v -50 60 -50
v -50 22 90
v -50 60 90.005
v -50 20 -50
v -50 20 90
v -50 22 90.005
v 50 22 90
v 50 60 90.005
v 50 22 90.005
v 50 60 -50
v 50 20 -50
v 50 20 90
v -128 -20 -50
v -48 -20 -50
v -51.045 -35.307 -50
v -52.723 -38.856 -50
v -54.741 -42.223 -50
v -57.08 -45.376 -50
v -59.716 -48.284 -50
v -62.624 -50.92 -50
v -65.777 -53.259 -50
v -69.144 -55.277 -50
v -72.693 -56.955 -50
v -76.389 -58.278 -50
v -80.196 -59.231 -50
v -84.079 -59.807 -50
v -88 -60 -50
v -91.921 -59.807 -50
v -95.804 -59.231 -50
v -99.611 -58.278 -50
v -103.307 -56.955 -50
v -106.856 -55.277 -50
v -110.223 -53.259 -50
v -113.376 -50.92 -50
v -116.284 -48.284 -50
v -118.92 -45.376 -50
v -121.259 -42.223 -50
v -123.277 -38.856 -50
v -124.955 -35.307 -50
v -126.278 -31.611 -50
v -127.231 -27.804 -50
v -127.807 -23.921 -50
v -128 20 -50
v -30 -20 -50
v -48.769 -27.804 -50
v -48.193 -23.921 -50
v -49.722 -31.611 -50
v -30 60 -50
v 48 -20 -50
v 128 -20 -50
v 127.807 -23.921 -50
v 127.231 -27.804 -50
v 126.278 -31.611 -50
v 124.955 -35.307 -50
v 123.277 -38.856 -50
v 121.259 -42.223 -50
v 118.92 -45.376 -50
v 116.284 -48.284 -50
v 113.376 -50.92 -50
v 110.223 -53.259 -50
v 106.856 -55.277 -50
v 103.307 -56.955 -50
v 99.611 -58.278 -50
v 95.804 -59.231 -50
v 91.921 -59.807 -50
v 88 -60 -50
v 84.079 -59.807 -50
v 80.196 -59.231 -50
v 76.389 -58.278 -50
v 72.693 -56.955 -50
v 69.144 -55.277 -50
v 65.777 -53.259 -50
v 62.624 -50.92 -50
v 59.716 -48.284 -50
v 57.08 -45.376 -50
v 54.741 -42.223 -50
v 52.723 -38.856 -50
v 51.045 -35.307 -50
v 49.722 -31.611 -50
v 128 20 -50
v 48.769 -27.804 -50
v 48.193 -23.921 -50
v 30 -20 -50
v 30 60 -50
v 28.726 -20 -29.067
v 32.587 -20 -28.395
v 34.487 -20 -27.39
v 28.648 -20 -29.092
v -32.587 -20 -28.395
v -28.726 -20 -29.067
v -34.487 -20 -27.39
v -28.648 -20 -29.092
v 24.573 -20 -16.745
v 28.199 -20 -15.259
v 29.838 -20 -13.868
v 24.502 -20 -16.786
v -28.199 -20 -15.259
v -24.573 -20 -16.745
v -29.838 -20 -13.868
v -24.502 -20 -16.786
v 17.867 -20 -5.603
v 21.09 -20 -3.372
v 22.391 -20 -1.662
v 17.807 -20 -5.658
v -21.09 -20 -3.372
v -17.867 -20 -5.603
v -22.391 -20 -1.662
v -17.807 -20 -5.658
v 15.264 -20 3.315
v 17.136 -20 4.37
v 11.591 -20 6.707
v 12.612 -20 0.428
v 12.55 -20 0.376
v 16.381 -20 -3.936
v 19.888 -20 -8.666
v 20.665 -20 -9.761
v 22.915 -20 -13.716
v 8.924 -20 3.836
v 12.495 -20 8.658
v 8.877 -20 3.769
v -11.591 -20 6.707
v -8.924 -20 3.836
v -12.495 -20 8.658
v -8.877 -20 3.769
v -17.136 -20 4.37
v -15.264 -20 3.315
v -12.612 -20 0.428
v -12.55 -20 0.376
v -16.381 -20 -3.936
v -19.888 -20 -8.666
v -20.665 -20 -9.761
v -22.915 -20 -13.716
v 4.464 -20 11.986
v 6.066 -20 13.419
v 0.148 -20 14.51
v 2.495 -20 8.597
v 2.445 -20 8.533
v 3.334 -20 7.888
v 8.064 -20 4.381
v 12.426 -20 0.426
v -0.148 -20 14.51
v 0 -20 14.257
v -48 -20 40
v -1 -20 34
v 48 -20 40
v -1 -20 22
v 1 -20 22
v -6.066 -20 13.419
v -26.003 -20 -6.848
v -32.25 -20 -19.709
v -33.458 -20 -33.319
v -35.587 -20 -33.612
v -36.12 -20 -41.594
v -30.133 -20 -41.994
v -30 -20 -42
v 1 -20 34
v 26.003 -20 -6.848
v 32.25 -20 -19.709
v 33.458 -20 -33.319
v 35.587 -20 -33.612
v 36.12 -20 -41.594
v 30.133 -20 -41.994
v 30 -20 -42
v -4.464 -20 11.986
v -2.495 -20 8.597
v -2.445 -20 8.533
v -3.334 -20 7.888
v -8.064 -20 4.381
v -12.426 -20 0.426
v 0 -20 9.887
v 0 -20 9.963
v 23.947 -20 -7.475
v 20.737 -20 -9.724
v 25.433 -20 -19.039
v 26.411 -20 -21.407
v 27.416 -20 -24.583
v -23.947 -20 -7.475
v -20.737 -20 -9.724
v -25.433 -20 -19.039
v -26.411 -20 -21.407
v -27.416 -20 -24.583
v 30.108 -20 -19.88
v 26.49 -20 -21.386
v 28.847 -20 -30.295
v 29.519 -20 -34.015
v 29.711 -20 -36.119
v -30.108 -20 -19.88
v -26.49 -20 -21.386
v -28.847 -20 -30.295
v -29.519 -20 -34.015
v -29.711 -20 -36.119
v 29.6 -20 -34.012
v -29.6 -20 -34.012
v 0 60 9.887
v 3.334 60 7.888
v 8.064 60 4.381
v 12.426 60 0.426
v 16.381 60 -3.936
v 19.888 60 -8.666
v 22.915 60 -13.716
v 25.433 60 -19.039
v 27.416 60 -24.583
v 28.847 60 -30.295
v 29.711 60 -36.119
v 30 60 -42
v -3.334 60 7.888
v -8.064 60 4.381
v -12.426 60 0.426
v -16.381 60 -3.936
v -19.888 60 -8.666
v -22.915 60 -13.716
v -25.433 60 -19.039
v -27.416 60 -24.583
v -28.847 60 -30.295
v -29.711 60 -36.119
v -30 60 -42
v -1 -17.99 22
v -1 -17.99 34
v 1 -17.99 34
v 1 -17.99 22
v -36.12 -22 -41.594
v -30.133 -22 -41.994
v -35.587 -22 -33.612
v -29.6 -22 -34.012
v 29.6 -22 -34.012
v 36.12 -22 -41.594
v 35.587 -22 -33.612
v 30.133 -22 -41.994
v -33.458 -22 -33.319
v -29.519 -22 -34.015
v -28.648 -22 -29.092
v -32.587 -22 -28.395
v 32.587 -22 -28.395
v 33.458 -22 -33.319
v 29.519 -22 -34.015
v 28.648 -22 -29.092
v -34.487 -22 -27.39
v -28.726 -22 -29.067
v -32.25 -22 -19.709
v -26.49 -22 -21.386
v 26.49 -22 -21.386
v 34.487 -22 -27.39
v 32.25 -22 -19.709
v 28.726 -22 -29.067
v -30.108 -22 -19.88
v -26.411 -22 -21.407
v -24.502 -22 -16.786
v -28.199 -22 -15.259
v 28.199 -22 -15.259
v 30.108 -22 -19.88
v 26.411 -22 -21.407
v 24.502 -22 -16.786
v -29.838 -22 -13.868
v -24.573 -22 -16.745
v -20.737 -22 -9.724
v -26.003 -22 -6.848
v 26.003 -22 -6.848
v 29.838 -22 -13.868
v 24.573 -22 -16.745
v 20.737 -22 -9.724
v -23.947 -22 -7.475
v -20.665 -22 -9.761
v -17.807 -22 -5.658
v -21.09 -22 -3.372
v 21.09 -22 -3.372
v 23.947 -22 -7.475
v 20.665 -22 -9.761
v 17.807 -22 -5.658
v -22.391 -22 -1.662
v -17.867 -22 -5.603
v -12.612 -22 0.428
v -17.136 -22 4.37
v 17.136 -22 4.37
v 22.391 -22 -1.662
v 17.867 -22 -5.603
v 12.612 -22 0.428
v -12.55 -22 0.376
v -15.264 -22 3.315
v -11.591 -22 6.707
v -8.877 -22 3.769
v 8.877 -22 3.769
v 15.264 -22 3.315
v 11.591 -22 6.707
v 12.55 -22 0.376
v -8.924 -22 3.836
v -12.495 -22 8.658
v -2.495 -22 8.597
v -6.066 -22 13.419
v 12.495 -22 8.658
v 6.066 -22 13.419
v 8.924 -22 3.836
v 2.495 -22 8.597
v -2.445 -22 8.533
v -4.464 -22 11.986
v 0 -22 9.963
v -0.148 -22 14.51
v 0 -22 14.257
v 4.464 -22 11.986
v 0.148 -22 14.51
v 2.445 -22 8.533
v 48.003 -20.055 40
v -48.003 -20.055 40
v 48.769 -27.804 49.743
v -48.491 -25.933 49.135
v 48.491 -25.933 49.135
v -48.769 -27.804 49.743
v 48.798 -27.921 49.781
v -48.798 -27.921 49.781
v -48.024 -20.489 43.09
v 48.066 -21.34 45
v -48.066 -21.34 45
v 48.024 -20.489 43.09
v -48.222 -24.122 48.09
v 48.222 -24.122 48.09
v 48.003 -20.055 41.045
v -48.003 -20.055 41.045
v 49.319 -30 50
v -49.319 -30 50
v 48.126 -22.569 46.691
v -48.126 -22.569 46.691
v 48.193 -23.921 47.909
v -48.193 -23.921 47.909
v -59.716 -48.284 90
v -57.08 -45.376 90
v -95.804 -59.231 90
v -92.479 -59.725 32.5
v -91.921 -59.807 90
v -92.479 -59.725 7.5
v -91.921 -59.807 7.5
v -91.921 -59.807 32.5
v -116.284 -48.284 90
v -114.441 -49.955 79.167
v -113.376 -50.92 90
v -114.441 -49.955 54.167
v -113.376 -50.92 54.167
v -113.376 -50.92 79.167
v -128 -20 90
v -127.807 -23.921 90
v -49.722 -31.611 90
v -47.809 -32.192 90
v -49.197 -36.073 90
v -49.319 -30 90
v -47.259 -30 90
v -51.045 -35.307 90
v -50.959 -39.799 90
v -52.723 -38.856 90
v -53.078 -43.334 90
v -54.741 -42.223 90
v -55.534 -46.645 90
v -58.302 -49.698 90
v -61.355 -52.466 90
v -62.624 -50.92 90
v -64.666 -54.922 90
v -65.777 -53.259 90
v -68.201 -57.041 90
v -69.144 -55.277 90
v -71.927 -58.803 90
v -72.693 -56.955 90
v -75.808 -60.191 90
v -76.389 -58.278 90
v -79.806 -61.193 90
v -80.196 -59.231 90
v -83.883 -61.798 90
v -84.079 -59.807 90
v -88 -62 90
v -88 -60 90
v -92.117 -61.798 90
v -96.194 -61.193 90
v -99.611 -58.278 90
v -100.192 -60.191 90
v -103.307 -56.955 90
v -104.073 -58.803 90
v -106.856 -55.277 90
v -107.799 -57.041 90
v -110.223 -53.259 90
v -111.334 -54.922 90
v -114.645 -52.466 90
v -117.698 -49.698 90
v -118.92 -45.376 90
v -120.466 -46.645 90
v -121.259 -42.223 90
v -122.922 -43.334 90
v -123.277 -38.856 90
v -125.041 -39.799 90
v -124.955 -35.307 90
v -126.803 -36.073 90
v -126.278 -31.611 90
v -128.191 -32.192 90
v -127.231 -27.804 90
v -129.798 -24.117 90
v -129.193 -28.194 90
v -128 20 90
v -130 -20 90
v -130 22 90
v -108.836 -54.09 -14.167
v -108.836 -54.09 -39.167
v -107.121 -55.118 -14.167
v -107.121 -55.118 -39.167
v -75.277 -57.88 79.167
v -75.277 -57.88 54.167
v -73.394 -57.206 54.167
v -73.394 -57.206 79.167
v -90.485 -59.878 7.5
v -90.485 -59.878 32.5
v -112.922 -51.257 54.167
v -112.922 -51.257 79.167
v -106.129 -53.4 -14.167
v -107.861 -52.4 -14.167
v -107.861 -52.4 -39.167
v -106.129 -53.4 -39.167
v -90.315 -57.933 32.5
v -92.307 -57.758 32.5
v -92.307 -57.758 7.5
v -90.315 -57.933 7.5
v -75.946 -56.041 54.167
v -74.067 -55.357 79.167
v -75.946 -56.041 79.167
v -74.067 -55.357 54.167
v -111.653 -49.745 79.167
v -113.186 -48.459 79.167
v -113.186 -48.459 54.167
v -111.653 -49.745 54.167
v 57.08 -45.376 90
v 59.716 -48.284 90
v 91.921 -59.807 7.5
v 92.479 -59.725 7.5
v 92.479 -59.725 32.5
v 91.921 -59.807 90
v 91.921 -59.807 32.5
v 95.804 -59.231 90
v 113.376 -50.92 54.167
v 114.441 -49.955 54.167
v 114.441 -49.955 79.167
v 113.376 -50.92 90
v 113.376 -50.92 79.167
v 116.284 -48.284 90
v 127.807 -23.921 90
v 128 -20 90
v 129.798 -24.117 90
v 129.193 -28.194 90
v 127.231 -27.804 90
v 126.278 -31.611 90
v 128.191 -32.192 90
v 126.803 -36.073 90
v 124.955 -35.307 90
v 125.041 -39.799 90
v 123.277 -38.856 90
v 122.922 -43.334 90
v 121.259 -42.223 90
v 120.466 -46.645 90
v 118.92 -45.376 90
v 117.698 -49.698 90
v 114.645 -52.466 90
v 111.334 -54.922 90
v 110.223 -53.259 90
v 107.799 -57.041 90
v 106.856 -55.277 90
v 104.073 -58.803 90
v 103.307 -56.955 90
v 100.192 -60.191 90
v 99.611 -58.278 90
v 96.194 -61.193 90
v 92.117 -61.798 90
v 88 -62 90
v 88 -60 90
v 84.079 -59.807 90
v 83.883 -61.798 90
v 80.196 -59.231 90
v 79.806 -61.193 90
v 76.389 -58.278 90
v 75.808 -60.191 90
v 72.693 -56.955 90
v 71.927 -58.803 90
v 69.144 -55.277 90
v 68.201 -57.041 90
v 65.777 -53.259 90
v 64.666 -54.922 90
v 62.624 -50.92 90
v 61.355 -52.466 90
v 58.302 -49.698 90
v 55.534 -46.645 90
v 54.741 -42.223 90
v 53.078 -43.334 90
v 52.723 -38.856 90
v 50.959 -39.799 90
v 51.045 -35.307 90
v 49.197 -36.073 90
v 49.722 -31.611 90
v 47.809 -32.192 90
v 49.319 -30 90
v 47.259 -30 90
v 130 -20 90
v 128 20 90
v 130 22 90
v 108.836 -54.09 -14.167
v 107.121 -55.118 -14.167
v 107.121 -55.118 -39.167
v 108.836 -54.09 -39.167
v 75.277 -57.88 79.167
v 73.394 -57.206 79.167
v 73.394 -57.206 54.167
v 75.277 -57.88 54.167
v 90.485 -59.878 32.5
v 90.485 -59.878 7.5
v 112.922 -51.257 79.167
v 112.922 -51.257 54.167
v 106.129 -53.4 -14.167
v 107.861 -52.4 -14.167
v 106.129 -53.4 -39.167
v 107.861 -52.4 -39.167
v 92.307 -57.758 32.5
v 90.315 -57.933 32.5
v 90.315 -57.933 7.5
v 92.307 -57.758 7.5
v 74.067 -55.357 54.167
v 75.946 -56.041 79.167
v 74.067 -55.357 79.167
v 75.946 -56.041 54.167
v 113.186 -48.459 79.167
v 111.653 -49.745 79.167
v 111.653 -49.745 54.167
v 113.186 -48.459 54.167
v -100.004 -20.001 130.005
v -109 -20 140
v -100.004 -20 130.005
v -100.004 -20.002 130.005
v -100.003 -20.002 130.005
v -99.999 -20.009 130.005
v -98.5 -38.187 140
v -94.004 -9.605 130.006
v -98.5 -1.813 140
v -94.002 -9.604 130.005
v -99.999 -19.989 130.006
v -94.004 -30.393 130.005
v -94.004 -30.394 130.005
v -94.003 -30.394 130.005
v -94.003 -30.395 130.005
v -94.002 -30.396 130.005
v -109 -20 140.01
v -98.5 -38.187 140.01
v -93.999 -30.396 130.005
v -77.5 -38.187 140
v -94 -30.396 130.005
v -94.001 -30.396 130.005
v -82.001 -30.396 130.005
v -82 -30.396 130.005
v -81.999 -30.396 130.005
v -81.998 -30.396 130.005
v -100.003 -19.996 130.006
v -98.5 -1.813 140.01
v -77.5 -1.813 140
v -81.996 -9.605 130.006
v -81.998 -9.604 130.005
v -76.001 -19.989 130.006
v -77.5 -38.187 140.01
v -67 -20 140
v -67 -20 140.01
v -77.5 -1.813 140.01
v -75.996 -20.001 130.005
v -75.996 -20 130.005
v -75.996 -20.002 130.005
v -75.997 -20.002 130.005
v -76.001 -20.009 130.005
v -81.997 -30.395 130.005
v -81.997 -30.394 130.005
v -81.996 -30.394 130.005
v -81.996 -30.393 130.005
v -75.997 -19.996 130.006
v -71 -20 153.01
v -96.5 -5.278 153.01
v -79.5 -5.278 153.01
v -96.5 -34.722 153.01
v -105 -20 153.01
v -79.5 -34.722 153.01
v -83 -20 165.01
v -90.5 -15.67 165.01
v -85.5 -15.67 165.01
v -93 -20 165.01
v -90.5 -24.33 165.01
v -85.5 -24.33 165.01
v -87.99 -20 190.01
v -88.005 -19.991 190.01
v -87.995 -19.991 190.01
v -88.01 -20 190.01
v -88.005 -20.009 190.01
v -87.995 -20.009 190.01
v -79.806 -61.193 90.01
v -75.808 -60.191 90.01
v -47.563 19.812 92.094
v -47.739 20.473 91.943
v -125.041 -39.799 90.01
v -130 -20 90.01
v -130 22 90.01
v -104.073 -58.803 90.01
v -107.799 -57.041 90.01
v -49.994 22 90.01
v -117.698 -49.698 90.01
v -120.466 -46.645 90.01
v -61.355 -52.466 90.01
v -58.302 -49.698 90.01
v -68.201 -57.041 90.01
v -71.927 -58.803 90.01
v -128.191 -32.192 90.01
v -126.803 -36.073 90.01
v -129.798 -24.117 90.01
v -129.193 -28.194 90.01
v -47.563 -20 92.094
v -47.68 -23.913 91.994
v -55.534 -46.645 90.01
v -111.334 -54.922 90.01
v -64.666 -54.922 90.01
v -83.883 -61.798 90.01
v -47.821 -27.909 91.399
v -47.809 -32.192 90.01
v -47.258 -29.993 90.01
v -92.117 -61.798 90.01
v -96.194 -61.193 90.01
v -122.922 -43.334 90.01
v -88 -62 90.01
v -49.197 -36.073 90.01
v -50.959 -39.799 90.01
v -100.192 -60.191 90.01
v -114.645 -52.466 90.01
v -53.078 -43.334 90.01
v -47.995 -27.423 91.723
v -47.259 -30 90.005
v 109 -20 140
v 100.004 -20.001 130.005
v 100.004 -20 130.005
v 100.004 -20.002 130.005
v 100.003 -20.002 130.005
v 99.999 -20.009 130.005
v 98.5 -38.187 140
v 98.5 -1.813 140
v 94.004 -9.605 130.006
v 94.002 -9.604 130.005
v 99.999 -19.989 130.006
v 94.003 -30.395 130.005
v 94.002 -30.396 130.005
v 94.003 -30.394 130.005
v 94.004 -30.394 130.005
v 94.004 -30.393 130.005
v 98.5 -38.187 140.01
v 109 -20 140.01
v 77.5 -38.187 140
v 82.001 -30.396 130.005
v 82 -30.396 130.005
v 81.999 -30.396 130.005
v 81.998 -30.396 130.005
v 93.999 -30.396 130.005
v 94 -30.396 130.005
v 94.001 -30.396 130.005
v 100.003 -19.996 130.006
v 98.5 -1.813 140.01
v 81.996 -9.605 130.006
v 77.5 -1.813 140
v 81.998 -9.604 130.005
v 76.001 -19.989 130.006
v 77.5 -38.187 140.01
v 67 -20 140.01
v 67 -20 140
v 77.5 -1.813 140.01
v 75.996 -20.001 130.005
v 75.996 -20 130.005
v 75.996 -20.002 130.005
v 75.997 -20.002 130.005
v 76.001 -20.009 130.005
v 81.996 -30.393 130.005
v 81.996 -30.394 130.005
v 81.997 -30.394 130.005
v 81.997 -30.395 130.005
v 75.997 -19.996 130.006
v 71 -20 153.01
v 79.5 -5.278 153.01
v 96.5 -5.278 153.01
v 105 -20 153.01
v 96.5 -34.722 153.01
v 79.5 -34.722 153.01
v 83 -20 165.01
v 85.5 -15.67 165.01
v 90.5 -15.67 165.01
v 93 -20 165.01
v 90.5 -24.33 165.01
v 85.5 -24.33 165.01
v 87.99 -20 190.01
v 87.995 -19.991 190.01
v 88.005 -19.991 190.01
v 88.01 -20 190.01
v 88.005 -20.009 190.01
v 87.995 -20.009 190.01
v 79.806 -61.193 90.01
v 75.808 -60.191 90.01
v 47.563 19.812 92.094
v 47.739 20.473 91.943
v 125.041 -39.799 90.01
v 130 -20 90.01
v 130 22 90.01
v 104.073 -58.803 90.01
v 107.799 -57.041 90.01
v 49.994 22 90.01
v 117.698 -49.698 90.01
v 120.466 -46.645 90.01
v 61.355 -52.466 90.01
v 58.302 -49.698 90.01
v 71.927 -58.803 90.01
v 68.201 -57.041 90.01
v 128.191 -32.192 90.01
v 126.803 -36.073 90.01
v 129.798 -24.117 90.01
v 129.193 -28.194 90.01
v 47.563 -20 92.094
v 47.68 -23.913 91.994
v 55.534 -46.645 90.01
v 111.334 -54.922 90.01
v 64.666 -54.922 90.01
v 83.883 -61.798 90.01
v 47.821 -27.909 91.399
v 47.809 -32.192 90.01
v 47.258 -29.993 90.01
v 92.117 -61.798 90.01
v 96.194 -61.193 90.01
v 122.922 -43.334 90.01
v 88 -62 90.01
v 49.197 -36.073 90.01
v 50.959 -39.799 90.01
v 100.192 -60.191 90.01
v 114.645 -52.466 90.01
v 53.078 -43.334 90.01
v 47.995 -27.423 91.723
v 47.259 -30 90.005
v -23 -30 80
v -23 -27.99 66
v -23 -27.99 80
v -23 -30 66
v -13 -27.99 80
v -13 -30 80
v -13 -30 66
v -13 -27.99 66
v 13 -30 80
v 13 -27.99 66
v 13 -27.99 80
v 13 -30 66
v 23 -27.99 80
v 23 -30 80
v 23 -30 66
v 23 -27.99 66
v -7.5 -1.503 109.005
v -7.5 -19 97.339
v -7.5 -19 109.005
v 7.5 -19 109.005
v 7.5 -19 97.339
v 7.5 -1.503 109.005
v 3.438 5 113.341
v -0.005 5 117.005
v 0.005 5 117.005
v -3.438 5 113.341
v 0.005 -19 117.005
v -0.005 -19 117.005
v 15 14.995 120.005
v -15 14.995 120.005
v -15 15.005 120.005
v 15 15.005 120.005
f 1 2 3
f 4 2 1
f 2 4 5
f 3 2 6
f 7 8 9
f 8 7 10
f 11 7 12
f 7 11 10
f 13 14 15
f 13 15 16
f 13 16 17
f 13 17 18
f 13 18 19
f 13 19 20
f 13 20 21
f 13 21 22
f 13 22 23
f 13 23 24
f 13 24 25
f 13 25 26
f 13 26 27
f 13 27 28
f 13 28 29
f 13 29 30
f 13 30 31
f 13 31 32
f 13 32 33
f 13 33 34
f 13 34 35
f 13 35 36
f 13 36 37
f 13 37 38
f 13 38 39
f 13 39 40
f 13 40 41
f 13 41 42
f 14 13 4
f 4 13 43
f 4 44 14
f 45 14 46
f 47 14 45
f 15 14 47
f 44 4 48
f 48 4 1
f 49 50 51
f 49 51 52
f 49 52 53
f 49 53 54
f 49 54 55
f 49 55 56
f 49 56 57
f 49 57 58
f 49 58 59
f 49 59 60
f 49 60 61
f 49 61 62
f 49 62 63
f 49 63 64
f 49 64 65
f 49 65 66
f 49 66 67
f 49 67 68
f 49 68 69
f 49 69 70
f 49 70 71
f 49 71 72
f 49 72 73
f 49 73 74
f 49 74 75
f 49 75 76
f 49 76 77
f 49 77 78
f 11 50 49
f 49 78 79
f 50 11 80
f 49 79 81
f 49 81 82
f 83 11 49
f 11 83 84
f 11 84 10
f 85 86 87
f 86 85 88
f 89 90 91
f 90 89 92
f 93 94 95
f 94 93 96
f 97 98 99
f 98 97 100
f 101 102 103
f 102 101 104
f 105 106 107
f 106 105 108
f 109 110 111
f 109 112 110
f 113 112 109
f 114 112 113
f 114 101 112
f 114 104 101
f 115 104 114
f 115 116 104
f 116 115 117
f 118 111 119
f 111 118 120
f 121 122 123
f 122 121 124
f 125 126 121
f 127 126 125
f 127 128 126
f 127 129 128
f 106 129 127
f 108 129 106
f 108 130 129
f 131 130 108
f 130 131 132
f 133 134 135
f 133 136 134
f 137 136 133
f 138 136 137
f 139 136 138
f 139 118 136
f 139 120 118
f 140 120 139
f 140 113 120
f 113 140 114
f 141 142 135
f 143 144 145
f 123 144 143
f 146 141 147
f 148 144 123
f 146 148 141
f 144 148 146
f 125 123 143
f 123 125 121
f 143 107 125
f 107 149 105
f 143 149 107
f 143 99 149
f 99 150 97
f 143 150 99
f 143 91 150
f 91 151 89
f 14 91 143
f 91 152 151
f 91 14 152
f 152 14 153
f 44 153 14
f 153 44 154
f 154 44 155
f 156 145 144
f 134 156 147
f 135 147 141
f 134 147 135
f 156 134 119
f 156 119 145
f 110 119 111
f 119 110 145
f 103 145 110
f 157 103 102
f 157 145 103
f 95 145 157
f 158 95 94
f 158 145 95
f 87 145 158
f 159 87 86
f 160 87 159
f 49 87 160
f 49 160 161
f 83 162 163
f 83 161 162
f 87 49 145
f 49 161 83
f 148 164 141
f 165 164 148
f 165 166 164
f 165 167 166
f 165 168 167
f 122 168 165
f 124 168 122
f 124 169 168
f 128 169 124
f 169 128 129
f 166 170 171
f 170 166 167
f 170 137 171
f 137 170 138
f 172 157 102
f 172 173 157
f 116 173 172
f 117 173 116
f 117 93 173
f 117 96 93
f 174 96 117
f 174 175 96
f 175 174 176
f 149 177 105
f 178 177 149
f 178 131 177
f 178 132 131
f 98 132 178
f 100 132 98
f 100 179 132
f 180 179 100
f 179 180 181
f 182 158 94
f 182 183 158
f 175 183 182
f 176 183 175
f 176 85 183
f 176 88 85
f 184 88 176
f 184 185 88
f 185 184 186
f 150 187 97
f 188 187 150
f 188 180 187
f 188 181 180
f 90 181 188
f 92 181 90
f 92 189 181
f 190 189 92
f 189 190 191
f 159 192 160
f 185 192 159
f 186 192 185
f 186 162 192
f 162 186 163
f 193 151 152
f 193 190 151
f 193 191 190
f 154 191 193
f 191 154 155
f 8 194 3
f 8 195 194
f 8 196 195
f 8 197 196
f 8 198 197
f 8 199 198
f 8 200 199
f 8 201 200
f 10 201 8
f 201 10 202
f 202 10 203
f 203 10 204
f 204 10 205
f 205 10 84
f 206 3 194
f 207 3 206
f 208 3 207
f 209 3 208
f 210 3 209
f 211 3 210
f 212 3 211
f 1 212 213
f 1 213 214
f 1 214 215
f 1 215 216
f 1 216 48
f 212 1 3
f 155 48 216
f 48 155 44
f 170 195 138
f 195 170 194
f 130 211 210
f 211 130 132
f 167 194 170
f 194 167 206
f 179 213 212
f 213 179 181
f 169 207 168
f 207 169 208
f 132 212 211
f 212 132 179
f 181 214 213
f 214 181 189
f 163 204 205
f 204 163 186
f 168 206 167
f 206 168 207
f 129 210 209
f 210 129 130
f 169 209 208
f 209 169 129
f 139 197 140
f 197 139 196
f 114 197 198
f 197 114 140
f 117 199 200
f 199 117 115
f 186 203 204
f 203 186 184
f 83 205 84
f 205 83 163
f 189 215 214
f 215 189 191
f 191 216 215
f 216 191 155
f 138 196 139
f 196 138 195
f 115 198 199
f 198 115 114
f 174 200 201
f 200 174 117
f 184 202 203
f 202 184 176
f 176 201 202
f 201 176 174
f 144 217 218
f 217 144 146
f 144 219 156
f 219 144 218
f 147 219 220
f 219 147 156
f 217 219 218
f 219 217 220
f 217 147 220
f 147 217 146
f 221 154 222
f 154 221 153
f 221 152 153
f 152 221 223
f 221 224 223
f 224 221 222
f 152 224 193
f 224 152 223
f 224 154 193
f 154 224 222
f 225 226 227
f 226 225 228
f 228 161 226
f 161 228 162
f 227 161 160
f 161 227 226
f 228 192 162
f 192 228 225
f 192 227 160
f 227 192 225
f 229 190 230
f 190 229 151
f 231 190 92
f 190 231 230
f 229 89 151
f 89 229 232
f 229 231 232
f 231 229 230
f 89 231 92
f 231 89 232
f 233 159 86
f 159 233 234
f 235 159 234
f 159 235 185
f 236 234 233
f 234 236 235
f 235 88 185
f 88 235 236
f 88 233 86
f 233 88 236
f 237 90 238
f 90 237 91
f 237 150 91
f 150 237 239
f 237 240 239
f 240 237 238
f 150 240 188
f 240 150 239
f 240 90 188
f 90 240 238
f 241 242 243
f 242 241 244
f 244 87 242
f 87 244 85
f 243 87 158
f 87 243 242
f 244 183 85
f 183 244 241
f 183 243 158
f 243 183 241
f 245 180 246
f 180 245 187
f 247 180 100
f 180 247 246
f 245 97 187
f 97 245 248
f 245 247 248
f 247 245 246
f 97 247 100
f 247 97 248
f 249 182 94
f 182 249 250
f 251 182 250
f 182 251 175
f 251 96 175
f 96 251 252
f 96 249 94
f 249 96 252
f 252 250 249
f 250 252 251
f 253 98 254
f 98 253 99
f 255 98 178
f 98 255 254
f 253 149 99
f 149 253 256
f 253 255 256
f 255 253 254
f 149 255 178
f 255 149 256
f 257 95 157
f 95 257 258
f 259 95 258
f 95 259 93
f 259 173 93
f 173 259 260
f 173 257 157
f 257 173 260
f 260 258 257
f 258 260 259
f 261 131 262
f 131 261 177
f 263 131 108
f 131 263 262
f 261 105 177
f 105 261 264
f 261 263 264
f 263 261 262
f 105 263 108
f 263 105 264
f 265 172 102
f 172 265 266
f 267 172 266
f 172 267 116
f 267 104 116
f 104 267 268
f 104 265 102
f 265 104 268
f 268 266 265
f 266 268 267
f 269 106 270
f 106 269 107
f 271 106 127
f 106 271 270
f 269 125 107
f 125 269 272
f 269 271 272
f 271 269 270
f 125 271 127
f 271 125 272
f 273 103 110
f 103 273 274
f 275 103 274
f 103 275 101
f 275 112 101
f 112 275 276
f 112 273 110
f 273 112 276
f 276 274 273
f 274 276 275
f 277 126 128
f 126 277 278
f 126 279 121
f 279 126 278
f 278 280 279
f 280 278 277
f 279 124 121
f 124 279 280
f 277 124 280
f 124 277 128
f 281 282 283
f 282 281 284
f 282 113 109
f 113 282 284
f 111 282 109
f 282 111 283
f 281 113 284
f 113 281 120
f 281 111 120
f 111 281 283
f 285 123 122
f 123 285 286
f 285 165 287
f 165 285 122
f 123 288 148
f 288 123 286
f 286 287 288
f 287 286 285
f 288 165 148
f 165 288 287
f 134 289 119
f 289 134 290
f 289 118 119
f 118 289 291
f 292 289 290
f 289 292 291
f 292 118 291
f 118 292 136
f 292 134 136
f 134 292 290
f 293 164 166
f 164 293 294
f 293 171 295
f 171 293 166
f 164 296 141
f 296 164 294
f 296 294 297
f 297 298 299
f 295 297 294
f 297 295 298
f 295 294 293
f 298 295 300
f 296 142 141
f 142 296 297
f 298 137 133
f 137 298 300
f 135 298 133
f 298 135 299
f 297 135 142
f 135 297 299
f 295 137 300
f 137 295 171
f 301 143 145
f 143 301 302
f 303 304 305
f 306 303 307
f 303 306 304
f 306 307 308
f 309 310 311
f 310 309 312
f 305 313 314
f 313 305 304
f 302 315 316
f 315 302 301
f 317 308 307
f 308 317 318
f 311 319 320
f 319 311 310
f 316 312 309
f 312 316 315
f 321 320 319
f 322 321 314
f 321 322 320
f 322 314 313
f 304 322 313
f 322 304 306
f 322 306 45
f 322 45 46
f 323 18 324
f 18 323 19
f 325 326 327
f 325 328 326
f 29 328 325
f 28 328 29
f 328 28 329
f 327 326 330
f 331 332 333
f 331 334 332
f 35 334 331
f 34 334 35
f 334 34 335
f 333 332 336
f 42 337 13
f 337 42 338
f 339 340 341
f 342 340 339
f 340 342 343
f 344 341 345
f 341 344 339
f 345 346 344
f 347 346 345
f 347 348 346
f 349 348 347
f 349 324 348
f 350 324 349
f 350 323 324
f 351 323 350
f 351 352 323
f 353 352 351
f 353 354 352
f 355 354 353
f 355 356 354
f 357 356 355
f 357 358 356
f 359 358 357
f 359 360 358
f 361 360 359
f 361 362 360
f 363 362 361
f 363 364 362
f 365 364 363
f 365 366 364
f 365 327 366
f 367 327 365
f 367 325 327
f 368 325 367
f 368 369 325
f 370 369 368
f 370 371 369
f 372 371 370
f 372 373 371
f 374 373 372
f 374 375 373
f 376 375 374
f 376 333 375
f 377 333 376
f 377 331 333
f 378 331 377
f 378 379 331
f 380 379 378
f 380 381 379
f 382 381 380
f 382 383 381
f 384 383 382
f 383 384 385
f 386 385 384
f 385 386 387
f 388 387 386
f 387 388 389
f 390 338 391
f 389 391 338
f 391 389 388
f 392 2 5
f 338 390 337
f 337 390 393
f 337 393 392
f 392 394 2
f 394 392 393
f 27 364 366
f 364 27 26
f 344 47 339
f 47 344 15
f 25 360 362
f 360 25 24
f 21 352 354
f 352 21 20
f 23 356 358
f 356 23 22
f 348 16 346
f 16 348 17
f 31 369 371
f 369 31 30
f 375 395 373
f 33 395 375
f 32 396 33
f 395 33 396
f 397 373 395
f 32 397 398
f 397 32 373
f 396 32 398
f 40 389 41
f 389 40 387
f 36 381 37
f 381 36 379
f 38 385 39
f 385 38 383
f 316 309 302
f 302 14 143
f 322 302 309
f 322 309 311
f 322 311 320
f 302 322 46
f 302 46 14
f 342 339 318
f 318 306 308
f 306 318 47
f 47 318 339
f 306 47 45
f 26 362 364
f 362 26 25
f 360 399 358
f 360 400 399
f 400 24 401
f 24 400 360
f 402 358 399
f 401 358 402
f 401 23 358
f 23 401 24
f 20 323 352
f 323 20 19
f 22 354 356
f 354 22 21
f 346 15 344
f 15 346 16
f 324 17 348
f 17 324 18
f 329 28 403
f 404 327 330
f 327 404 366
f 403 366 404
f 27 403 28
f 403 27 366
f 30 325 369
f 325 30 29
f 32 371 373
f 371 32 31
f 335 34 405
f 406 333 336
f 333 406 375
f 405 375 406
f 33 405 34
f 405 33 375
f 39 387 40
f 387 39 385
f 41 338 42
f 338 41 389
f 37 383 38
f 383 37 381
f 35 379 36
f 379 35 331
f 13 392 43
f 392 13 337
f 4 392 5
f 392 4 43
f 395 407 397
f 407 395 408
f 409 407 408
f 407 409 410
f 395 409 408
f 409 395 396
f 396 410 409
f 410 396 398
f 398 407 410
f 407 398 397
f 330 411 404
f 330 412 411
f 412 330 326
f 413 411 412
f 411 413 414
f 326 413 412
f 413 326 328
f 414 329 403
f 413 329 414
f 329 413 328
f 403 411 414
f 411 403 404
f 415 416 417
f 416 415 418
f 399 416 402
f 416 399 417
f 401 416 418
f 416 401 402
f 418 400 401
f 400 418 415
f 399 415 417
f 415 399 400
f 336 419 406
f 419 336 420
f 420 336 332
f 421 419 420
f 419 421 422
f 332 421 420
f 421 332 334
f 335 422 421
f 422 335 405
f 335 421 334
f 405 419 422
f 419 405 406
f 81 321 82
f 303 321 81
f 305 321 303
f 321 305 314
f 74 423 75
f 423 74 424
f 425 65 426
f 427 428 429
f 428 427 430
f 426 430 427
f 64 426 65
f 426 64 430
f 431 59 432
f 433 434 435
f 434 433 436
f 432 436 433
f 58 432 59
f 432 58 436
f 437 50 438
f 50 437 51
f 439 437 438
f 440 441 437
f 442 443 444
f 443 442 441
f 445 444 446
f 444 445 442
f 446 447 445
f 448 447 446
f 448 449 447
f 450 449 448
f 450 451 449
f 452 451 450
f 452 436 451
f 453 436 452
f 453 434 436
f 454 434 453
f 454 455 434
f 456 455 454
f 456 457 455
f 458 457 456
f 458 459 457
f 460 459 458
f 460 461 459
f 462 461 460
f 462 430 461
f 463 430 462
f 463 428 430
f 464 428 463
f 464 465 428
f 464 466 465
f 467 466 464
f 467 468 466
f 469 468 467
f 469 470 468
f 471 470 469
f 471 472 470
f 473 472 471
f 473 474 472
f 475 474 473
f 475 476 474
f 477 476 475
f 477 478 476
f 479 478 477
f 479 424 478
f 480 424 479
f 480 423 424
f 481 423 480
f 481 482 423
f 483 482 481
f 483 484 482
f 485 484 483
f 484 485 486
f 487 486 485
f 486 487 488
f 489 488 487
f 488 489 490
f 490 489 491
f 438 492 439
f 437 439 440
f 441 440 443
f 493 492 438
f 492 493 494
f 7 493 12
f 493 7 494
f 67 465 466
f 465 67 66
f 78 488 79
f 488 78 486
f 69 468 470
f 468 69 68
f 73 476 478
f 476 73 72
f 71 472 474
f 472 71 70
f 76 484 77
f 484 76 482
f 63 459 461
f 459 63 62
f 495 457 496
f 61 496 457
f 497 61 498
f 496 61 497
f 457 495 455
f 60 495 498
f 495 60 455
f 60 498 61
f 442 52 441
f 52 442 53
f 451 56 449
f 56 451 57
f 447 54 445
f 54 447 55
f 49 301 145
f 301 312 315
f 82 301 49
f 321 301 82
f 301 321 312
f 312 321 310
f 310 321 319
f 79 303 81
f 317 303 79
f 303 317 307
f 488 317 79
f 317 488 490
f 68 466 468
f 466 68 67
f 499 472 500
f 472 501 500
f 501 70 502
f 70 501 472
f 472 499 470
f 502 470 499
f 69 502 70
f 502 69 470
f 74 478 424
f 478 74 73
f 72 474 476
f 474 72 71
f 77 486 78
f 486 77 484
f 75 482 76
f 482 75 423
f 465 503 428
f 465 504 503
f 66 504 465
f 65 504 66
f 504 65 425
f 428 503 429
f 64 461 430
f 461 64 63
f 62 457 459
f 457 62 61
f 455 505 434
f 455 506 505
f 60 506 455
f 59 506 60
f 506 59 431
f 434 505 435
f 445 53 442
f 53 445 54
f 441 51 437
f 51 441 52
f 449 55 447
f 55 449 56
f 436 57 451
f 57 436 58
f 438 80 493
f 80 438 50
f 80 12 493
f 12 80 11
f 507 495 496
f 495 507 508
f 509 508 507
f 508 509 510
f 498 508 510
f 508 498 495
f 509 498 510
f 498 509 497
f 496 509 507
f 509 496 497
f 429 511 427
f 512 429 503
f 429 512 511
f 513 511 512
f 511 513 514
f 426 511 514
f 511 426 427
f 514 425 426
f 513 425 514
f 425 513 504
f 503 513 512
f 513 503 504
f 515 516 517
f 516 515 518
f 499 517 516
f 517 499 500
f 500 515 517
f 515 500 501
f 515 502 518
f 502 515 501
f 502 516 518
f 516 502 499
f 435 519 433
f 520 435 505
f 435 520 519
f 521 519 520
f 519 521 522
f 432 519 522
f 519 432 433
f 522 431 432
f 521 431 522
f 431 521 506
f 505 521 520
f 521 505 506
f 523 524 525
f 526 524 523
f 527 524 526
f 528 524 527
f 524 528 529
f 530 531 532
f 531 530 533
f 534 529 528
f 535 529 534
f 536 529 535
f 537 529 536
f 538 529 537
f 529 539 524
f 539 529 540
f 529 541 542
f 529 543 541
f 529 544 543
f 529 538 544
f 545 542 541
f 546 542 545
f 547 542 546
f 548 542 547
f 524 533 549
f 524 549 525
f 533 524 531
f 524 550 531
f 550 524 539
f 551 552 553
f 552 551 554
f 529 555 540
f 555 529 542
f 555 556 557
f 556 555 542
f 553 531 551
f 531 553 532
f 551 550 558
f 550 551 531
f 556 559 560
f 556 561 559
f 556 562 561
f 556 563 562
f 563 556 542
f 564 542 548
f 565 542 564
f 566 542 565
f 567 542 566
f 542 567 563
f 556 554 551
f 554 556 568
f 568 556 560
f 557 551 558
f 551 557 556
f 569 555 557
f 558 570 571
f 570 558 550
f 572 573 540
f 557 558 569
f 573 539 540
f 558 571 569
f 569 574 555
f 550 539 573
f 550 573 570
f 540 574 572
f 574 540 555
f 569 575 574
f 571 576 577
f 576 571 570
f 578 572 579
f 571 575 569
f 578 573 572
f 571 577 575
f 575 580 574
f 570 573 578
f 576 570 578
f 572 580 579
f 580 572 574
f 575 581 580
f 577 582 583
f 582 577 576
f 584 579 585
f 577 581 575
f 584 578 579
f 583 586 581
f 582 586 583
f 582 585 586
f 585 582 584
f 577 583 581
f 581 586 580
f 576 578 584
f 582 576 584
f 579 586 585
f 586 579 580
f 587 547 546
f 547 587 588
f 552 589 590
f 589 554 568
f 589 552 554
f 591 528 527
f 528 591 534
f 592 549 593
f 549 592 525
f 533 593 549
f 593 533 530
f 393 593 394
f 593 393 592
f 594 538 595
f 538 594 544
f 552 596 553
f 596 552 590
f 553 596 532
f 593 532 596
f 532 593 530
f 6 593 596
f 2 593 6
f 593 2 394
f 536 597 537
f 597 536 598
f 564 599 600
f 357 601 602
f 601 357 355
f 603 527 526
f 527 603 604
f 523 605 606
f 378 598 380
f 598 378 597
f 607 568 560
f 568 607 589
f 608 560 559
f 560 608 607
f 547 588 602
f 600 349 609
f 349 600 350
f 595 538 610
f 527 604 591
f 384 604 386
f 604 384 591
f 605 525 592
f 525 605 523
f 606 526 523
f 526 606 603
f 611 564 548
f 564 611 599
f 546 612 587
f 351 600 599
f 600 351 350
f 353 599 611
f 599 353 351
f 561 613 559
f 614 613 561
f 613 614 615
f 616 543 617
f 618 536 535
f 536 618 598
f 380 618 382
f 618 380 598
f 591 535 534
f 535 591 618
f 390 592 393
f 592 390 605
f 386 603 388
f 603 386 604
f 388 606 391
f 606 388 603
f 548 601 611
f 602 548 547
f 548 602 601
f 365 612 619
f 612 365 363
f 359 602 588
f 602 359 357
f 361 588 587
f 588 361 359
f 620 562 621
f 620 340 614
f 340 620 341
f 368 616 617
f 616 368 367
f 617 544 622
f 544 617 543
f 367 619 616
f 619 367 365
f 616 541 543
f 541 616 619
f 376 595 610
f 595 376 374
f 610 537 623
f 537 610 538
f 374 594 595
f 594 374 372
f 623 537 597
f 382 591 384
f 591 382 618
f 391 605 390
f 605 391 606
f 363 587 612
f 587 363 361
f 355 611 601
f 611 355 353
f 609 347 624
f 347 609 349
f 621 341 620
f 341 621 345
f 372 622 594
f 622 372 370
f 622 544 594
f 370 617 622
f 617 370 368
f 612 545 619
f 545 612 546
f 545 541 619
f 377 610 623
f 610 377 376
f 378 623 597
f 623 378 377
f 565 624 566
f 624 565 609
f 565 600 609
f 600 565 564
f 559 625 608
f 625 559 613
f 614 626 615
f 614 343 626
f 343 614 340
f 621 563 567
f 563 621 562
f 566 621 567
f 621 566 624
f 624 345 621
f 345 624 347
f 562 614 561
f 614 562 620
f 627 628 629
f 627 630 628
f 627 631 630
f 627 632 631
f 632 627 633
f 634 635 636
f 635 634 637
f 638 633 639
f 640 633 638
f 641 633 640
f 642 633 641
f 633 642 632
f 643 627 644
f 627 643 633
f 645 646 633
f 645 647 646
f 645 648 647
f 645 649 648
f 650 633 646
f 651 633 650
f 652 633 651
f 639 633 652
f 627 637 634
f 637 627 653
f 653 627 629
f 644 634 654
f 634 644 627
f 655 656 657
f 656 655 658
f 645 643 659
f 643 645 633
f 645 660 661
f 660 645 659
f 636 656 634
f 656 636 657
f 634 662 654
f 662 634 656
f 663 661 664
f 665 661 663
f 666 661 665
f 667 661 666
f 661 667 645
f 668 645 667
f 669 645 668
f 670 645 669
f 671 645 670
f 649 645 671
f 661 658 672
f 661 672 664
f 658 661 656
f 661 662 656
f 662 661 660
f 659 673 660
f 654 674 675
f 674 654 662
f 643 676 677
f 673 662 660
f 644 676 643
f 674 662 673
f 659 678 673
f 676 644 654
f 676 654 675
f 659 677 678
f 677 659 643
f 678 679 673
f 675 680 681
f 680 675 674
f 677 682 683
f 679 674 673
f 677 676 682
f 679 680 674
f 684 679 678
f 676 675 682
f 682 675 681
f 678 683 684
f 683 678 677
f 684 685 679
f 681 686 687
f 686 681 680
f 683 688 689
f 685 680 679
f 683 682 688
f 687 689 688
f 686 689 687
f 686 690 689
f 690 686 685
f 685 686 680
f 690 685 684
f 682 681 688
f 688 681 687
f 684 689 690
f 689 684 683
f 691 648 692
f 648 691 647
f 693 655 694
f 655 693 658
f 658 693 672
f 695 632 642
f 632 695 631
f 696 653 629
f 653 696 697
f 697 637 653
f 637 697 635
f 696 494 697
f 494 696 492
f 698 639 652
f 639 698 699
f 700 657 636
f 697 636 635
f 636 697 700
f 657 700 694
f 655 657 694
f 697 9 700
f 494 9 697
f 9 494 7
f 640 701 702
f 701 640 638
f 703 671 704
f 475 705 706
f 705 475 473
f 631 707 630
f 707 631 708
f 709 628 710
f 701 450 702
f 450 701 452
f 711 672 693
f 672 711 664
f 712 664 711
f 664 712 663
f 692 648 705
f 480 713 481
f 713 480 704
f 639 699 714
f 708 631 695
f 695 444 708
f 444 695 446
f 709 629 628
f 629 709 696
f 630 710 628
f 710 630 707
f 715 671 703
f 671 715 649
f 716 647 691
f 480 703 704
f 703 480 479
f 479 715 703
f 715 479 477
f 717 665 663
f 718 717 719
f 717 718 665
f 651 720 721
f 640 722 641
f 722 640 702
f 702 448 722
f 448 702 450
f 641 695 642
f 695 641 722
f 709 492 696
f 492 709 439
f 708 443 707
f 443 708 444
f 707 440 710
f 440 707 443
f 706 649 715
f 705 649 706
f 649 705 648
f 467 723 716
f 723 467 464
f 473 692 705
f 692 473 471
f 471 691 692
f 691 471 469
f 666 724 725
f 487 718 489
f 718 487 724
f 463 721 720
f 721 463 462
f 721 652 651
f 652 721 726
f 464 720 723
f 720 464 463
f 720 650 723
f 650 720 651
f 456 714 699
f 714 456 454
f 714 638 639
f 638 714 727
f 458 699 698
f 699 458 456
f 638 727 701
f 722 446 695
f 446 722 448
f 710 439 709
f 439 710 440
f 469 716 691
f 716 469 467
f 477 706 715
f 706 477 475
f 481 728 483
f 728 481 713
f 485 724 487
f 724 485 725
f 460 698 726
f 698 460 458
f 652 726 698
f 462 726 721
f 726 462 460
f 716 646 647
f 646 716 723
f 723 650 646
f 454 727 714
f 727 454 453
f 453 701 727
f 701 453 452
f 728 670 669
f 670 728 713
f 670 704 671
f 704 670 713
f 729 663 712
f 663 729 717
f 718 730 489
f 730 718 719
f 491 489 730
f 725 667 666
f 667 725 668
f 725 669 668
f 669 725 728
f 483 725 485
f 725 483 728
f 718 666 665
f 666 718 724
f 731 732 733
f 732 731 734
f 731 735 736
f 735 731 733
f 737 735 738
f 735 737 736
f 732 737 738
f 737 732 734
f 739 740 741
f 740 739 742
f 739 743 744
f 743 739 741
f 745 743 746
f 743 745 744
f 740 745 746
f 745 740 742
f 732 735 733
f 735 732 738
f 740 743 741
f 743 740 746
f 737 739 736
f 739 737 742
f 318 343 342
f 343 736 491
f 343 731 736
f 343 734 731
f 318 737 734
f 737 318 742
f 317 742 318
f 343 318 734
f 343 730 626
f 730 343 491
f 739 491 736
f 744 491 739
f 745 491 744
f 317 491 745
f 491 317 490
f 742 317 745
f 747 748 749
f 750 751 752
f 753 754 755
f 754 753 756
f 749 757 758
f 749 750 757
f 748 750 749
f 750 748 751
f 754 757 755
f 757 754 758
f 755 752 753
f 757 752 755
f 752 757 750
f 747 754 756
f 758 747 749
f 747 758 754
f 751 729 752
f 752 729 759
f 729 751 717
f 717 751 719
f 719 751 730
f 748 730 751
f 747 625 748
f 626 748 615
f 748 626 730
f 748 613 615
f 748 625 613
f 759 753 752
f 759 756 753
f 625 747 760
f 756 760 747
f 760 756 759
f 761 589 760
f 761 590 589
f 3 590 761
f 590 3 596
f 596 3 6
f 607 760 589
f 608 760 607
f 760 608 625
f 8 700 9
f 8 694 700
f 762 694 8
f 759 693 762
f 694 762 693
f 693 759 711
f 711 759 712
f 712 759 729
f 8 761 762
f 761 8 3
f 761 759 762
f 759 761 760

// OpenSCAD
// Quader mit gotischem Spitzbogen-Tunnel

// Quader (unten)
box_w = 100;
box_d = 80;
box_h = 100;
box_y = 20;    // Y-Start (Mitte in Y, 0 = zentriert)

// Quader (oben)
box2_w = 100;
box2_d = 90;
box2_h = 40;
box2_y = 15;   // Y-Start (Mitte in Y, 0 = zentriert)

// Balken (zwischen box und box2)
balken_x = 0;                       // X-Mitte
balken_y = -25;   // Y-Mitte
balken_z = 45;   // Z-Mitte (liegt auf Oberkante box)
balken_w = box_w;                   // Breite (X)
balken_d = 10;                  // Tiefe  (Y)
balken_h = 10;                       // Höhe   (Z)


// Walmdach (trapezförmig)
roof_w       = 100;  // Breite (default = box2_w)
roof_d       = 90;   // Tiefe  (default = box2_d)
roof_h       = 30;   // Firsthöhe
roof_ridge_l = 30;   // Firstlänge (0 = Pyramide)

// Türme (Zylinder links/rechts)
tower_r  = 40;   // Radius
tower_h  = 140;  // Höhe
tower_x  = box_w/2 + 38;  // X-Offset (bündig am Quader)
tower_y  = -20;  // Y-Versatz
tower_z  = 20;   // Z-Versatz (Mitte des Zylinders)

// Schießschächte der Türme (3 Ebenen, oberste hat 2 Schächte)
slit_ang_start = 240;  // Startwinkel Ebene 0 (vorne = -Y)
slit_ang_step  = 25;   // Winkelversatz pro Ebene
slit_top_gap   = 60;   // Winkelabstand der 2 Schächte auf Ebene 3

// Turmdach (unten: rund → Sechseck, oben: Sechseck → Spitze)
tr_r1 = 42;   // Basisradius (etwas größer als Turm)
tr_r2 = 12;   // Radius am Übergang Unter-/Oberteil
tr_h1 = 40;   // Höhe Unterteil
tr_h2 = 60;   // Höhe Oberteil

// Spitzen-Profil: 3 Kontrollpunkte (Radius / Z-Position)
tr_p1_r = 21;  tr_p1_z = 10;
tr_p2_r = 17;  tr_p2_z = 23;
tr_p3_r =  5;  tr_p3_z = 35;

// Dachgaube
dg_w  = 15;   // Breite
dg_h  = 12;   // Höhe Quader
dg_d  =  24;   // Tiefe
dg_rh =  8;   // Höhe Dreieckdach
dg_y  = -7;  // Y-Position
dg_z  = 97;   // Z-Position (Unterkante)

// Box2-Fenster vorne (zwei rechteckige Nischen nebeneinander)
b2win_w     = 10;  // Breite je Fenster
b2win_h     = 14;  // Höhe je Fenster
b2win_gap   = 26;  // Abstand zwischen den beiden Fenstern
b2win_depth =  2;  // Eintiefung (max 2)
b2win_z     = 16;  // Z-Unterkante

// Tunnel
arch_span = 60;
arch_leg  = 10;
arch_r    = arch_span;

// Voussoirs (Bogensteine)
stone_n       = 10;   // Steine pro Bogenhälfte
stone_depth   = 2;   // Vorstand von der Vorderfläche
stone_h_big   = 6;   // radiale Dicke, großer Stein
stone_h_small = 4;   // radiale Dicke, kleiner Stein
stone_w_big   = 8;   // Breite entlang Bogen, großer Stein
stone_w_small = 5;   // Breite, kleiner Stein

// Schießschacht-Fenster (8 Steine: 3 links + 3 rechts + 1 oben + 1 unten)
win_z      = 28;   // Z-Mitte des Fensters
win_gap_w  = 2;    // freier Abstand zwischen linken und rechten Steinen
win_depth  = 2;    // Vorstand von der Vorderfläche
win_height = 12;

fr_h_big   = 5;
fr_h_small = 5;
fr_w_big   = 7;
fr_w_small = 5;
fr_n       = 3;    // Steine pro Seite → gesamt 3+3+1+1 = 8

function fr_h_at(i)  = (i % 2 == 0) ? fr_h_big  : fr_h_small;
function fr_w_at(i)  = (i % 2 == 0) ? fr_w_big  : fr_w_small;
function fr_cum_h(i) = (i == 0) ? 0 : fr_cum_h(i-1) + fr_h_at(i-1);

// ── Hilfsfunktionen: Breite/Höhe/Winkel pro Stein ────────────────────────────
function stone_w_at(i)   = (i % 2 == 0) ? stone_w_big   : stone_w_small;
function stone_h_at(i)   = (i % 2 == 0) ? stone_h_big   : stone_h_small;
function stone_ang_at(i) = stone_w_at(i) / arch_r * (180/PI);
function cum_ang(i)      = (i == 0) ? 0 : cum_ang(i-1) + stone_ang_at(i-1);

// ── Spitzbogen-Profil ─────────────────────────────────────────────────────────
module arch_2d(span, leg_h, r) {
    arch_tip_h = sqrt(r*r - (span/2)*(span/2));
    union() {
        translate([-span/2, 0])
            square([span, leg_h]);
        translate([0, leg_h])
        intersection() {
            translate([-span/2, 0]) circle(r=r, $fn=64);
            translate([ span/2, 0]) circle(r=r, $fn=64);
            translate([-r, 0]) square([2*r, arch_tip_h + 1]);
        }
    }
}

// ── Ein einzelner Voussoir ───────────────────────────────────────────────────
module stone_at(cx, cz, alpha_deg, h, w, depth, front_y) {
    sx = cx + arch_r * cos(alpha_deg);
    sz = cz + arch_r * sin(alpha_deg);
    translate([sx, front_y - depth/2, sz])
    rotate([0, -alpha_deg, 0])
    translate([h/2, 0, 0])
    cube([h, depth, w], center=true);
}

// ── Voussoir-Verzierung (Vorderseite) ────────────────────────────────────────
module arch_verzierung() {
    cr_x = arch_span/2;
    c_z  = arch_leg - box_h/2 - 2;
    fy   = -box_d/2;

    for (i = [0:stone_n-1]) {
        ang = 180 - cum_ang(i) - stone_ang_at(i)/2;
        stone_at(cr_x, c_z, ang, stone_h_at(i), stone_w_at(i), stone_depth, fy);
        mirror([1, 0, 0])
        stone_at(cr_x, c_z, ang, stone_h_at(i), stone_w_at(i), stone_depth, fy);
    }
}

// ── Schießschacht-Rahmensteine ────────────────────────────────────────────────
module fenster_rahmen() {
    fy      = -box_d/2;
    total_h = fr_cum_h(fr_n);
    z_start = win_z - total_h/2;
    cap_w   = win_gap_w + fr_w_big * 2;

    // 3 Seitensteine links und rechts (big-small-big)
    for (i = [0:fr_n-1]) {
        h   = fr_h_at(i);
        w   = fr_w_at(i);
        z_c = z_start + fr_cum_h(i) + h/2;
        for (side = [-1, 1])
            translate([side * (win_gap_w/2 + w/2), fy - win_depth/2, z_c])
            cube([w, win_depth, h], center=true);
    }

    // 1 Stein oben (breiter Abschluss)
    translate([0, fy - win_depth/2, z_start + total_h + fr_h_big/2])
        cube([cap_w, win_depth, fr_h_big], center=true);

    // 1 Stein unten
    translate([0, fy - win_depth/2, z_start - fr_h_small/2])
        cube([cap_w, win_depth, fr_h_small], center=true);
}

// ── Turm-Schießschacht: ein Rahmen auf der Zylinderoberfläche ─────────────────
module turm_koerper() {
    cylinder(r=tower_r, h=tower_h, center=true, $fn=64);
    // Rückseite: Quader von Mitte nach hinten (+Y)
    translate([-tower_r, 0, -tower_h/2])
        cube([2*tower_r, tower_r, tower_h]);
}

module turm_slit_at(ang, z_ctr) {
    total_h = fr_cum_h(fr_n) + fr_h_big + fr_h_small;
    rotate([0, 0, ang])
    translate([tower_r - win_depth/2, 0, z_ctr])
        cube([win_depth + 0.02, win_gap_w, total_h], center=true);
}

module turm_schlitze() {
    for (i = [0:2]) {
        turm_slit_at(slit_ang_start + i * slit_ang_step, -tower_h/3 + i * tower_h/3);
    }
    // 2. Schacht auf oberster Ebene (Winkel via slit_top_gap versetzt)
    turm_slit_at(slit_ang_start + 2*slit_ang_step - slit_top_gap, tower_h/3);
}

// ── Turmdach (Kreis → Sechseck → Kugel → Spitze) ────────────────────────────
module turmdach_spitze(r_base, h) {
    profile = [
        [r_base,  0      ],
        [tr_p1_r, tr_p1_z],
        [tr_p2_r, tr_p2_z],
        [tr_p3_r, tr_p3_z],
        [0.01,    h      ],
    ];
    for (i = [0:len(profile)-2]) {
        r0 = profile[i][0];    z0 = profile[i][1];
        r1 = profile[i+1][0];  z1 = profile[i+1][1];
        translate([0, 0, z0])
        hull() {
            cylinder(r=r0, h=0.01, $fn=6);
            translate([0, 0, z1-z0])
                cylinder(r=r1, h=0.01, $fn=6);
        }
    }
}

module turmdach(r1, r2, h1, h2) {
    // Unterteil: D-förmiger Fuß (Zylinder + Rückseite) → Sechseck oben
    hull() {
        cylinder(r=r1, h=0.01, $fn=64);
        translate([-r1, 0, 0])
            cube([2*r1, r1, 0.01]);
        translate([0, 0, h1])
            cylinder(r=r2, h=0.01, $fn=6);
    }
    // Oberteil: sechseckige Kontur → Spitze
    translate([0, 0, h1])
        turmdach_spitze(r2, h2);
}

// ── Dachgaube (Quader + Satteldach) ──────────────────────────────────────────
module dachgaube(w, h, d, rh) {
    cube([w, d, h], center=true);
    translate([0, 0, h/2])
    hull() {
        cube([w, d, 0.01], center=true);
        translate([0, 0, rh])
            cube([0.01, d, 0.01], center=true);
    }
}

// ── Kehlleiste: Viertelkreis-Profil ──────────────────────────────────────────
module kehlleiste_profil(r) {
    difference() {
        square(r * 2);
        circle(r);
    }
}

// ── Box2-Fenster: zwei rechteckige Nischen nebeneinander ─────────────────────
module fenster_box2_paar() {
    // intersection: zwei tiefe Schlitze × Tiefenbegrenzer = max b2win_depth tief
    intersection() {
        union() {
            translate([-(b2win_gap/2 + b2win_w), -0.01, 0])
                cube([b2win_w, 100, b2win_h]);
            translate([b2win_gap/2, -0.01, 0])
                cube([b2win_w, 100, b2win_h]);
        }
        translate([-(b2win_gap/2 + b2win_w) - 1, -0.01, -1])
            cube([2*b2win_w + b2win_gap + 2, b2win_depth + 0.02, b2win_h + 2]);
    }
}


// ── Walmdach ──────────────────────────────────────────────────────────────────
module walmdach(w, d, h, ridge_l) {
    hull() {
        cube([w, d, 0.01], center=true);
        translate([0, 0, h])
            cube([max(ridge_l, 0.01), 0.01, 0.01], center=true);
    }
}


// ── Balken ───────────────────────────────────────────────────────────────────
module balken(x, y, z, w, d, h) {
    color("lightblue")
    difference(){
        translate([x, y, z])
            cube([w, d, h], center=true);
                translate([-w/2, y - d/2, z - h/2])
                    rotate([0,90,0])
                    cylinder(h=w, r=d, center=false);
    }
        
}

// ── Szene ─────────────────────────────────────────────────────────────────────
translate([0, box_y, 0]) {
    difference() {
        cube([box_w, box_d, box_h], true);
        translate([0, box_d/2 + 2, -box_h/2 - 2])
        rotate([90, 0, 0])
        linear_extrude(box_d + 5)
        arch_2d(arch_span, arch_leg, arch_r);
        // Schießschacht vorne (bündig, 2 tief)
        translate([0, -box_d/2 + win_depth/2, win_z])
            cube([win_gap_w, win_depth + 0.02, win_height], center=true);
    }
    arch_verzierung();
}

// Balken Rundung zwischen box und box2
balken(balken_x, balken_y, balken_z, balken_w, balken_d, balken_h);

// Türme
translate([-tower_x, tower_y, tower_z]) {
    difference() {
        turm_koerper();
        turm_schlitze();
    }
}
mirror([1, 0, 0])
translate([-tower_x, tower_y, tower_z]) {
    difference() {
        turm_koerper();
        turm_schlitze();
    }
}

// Turmdächer
translate([-tower_x, tower_y, tower_z + tower_h/2])
    turmdach(tr_r1, tr_r2, tr_h1, tr_h2);
mirror([1, 0, 0])
translate([-tower_x, tower_y, tower_z + tower_h/2])
    turmdach(tr_r1, tr_r2, tr_h1, tr_h2);


// Quader oben mit Fensternischen
translate([0, box2_y, box_h/2 + box2_h/2])
difference() {
    cube([box2_w, box2_d, box2_h], true);
    // Vorderfenster: 1 Ebene
    translate([0, -box2_d/2, b2win_z - box2_h/2])
        fenster_box2_paar();
}

// Dach
translate([0, box2_y, box_h/2 + box2_h])
    walmdach(roof_w, roof_d, roof_h, roof_ridge_l);

// Dachgaube
translate([0, dg_y, dg_z + dg_h/2])
    dachgaube(dg_w, dg_h, dg_d, dg_rh);
